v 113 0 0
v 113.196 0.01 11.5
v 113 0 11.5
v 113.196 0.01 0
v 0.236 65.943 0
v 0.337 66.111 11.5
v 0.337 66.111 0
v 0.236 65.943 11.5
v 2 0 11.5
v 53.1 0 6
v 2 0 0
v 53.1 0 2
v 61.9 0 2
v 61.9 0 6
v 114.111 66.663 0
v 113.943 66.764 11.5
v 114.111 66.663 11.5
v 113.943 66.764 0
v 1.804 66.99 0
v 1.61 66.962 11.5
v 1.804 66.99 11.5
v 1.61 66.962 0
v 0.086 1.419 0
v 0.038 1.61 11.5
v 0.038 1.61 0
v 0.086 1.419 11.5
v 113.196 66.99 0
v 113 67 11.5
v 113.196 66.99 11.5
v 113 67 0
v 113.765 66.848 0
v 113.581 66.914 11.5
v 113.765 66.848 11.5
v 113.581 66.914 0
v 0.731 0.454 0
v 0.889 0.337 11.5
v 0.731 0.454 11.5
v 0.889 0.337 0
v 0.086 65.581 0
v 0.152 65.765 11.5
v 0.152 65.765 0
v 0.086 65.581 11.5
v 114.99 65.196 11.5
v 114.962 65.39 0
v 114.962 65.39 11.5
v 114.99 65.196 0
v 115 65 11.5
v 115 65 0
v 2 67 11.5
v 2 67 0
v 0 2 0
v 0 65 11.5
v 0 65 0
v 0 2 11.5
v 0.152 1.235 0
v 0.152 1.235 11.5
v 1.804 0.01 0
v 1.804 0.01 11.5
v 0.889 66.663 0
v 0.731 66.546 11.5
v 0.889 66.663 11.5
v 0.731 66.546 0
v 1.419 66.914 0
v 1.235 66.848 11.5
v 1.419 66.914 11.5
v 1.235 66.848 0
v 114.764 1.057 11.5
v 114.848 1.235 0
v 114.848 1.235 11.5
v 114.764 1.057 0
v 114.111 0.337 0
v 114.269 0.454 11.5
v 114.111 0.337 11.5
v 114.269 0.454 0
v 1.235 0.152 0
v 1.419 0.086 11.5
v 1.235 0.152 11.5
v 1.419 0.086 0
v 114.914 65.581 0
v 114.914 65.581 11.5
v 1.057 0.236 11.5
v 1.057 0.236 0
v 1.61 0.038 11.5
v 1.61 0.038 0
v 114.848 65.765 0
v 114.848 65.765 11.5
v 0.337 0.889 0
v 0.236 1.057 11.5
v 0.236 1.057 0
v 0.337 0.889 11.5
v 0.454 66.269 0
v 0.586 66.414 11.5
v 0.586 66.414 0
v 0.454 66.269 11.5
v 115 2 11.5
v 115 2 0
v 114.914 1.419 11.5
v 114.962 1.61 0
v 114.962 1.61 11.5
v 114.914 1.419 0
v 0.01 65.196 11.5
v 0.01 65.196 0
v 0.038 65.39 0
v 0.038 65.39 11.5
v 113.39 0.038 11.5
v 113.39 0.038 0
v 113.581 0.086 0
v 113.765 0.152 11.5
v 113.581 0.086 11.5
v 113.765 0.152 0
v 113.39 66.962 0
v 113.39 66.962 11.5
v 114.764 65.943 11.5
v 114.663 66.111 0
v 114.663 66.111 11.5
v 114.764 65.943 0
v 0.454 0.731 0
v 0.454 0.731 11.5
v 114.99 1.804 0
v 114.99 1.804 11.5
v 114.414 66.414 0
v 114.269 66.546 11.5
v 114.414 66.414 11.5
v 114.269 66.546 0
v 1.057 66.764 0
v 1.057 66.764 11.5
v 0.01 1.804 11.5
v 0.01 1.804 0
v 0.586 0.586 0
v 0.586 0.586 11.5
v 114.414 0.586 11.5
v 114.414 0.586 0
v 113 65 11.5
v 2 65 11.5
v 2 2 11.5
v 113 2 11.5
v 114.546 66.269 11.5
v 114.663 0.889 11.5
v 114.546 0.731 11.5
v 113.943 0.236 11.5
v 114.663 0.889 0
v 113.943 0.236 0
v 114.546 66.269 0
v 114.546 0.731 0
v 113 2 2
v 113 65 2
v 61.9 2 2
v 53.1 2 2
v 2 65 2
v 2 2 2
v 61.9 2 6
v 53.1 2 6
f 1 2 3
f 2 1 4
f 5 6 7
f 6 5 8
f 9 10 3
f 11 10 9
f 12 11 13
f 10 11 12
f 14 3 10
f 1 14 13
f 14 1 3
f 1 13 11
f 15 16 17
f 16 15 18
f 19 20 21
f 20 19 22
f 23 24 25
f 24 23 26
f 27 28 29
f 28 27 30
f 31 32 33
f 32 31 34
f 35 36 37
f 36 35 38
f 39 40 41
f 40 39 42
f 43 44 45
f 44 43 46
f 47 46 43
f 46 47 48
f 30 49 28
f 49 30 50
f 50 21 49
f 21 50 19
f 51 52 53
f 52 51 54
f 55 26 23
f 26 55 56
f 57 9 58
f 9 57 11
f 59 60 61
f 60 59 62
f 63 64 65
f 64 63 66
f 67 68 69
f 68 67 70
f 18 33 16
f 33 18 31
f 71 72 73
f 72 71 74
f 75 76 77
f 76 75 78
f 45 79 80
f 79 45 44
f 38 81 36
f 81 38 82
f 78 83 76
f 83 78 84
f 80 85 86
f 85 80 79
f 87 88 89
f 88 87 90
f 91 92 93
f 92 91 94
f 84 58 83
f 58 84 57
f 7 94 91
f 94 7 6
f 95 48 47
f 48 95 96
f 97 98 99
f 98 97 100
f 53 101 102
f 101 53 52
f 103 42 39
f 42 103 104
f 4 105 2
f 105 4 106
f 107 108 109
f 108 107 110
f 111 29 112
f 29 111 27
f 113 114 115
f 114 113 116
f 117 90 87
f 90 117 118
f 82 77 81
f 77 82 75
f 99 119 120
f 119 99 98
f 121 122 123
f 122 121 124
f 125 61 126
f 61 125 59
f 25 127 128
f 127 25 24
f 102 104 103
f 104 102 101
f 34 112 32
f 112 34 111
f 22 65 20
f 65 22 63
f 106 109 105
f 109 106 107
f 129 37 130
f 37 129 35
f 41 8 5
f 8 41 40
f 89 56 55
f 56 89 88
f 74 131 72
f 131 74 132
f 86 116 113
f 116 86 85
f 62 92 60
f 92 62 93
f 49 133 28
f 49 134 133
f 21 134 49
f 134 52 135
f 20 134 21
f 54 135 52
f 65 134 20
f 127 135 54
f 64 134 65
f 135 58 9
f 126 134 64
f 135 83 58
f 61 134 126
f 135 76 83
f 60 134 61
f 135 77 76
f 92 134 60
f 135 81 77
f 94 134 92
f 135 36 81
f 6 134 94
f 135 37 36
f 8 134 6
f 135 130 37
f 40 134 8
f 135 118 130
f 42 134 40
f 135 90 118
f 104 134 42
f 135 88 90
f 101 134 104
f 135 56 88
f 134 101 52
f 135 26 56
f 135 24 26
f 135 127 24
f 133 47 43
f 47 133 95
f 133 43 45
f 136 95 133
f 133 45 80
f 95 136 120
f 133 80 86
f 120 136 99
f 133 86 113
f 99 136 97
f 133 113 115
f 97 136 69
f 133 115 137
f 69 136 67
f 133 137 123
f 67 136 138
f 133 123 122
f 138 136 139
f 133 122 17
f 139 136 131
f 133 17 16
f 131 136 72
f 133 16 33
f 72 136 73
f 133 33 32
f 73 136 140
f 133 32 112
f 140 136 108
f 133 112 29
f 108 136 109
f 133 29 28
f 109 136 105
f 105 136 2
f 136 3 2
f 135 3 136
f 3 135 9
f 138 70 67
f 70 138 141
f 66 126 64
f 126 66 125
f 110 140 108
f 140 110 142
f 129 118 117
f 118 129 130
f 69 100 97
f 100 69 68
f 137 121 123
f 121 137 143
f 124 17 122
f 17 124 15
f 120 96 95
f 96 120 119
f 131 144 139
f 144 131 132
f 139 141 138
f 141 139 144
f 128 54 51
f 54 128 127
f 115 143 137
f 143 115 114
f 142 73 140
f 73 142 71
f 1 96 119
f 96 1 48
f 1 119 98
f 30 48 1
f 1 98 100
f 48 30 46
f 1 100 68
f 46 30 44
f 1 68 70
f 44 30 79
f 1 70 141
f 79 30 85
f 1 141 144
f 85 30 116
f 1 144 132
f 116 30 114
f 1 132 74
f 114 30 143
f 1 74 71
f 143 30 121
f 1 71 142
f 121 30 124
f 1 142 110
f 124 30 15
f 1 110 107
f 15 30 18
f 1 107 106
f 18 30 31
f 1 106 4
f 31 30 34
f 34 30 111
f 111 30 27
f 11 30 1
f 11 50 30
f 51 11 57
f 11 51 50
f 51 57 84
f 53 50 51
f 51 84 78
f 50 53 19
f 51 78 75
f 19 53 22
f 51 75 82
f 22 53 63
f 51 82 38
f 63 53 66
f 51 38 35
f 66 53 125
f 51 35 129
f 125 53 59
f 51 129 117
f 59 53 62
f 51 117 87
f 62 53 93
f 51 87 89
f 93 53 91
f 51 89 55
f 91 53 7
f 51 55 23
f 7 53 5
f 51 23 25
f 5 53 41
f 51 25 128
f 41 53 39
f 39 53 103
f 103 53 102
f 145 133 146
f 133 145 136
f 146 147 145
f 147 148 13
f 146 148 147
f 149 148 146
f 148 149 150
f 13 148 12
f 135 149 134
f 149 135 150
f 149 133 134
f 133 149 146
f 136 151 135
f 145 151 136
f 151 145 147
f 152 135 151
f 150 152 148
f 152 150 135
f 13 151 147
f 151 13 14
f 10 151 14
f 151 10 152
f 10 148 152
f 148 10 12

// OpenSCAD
// Touchpad open-top case model (units: mm)
// Dimensions per docs/case_notes.md

$fn = 64;

// Inner cavity (fits touchpad)
inner_length = 111;
inner_width  = 63;
inner_height = 9.5;

wall_thickness  = 2;
bottom_thickness = 2;

// USB opening on front wall (long side)
usb_width  = 7.8; // horizontal (X)
usb_height = 3;   // vertical (Z)

outer_length = inner_length + 2 * wall_thickness;
outer_width  = inner_width  + 2 * wall_thickness;
outer_height = inner_height + bottom_thickness; // open top
fillet_radius = 2; // outer vertical edge fillet

module case_body() {
  // Outer shell with filleted vertical edges
  linear_extrude(height = outer_height) {
    offset(r = fillet_radius)
      offset(r = -fillet_radius)
        square([outer_length, outer_width], center = false);
  }
}

module inner_cavity() {
  // Subtract inner cavity (open top)
  translate([wall_thickness, wall_thickness, bottom_thickness]) {
    cube([inner_length, inner_width, inner_height], center = false);
  }
}

module usb_opening() {
  // Front wall is the long side at Y=0
  usb_x = outer_length / 2 - usb_width / 2;
  usb_y = -0.1; // ensure full cut through wall
  usb_z = bottom_thickness; // bottom edge flush with inner floor
  translate([usb_x, usb_y, usb_z]) {
    cube([usb_width, wall_thickness + 0.2, usb_height], center = false);
  }
}

difference() {
  case_body();
  inner_cavity();
  usb_opening();
}
